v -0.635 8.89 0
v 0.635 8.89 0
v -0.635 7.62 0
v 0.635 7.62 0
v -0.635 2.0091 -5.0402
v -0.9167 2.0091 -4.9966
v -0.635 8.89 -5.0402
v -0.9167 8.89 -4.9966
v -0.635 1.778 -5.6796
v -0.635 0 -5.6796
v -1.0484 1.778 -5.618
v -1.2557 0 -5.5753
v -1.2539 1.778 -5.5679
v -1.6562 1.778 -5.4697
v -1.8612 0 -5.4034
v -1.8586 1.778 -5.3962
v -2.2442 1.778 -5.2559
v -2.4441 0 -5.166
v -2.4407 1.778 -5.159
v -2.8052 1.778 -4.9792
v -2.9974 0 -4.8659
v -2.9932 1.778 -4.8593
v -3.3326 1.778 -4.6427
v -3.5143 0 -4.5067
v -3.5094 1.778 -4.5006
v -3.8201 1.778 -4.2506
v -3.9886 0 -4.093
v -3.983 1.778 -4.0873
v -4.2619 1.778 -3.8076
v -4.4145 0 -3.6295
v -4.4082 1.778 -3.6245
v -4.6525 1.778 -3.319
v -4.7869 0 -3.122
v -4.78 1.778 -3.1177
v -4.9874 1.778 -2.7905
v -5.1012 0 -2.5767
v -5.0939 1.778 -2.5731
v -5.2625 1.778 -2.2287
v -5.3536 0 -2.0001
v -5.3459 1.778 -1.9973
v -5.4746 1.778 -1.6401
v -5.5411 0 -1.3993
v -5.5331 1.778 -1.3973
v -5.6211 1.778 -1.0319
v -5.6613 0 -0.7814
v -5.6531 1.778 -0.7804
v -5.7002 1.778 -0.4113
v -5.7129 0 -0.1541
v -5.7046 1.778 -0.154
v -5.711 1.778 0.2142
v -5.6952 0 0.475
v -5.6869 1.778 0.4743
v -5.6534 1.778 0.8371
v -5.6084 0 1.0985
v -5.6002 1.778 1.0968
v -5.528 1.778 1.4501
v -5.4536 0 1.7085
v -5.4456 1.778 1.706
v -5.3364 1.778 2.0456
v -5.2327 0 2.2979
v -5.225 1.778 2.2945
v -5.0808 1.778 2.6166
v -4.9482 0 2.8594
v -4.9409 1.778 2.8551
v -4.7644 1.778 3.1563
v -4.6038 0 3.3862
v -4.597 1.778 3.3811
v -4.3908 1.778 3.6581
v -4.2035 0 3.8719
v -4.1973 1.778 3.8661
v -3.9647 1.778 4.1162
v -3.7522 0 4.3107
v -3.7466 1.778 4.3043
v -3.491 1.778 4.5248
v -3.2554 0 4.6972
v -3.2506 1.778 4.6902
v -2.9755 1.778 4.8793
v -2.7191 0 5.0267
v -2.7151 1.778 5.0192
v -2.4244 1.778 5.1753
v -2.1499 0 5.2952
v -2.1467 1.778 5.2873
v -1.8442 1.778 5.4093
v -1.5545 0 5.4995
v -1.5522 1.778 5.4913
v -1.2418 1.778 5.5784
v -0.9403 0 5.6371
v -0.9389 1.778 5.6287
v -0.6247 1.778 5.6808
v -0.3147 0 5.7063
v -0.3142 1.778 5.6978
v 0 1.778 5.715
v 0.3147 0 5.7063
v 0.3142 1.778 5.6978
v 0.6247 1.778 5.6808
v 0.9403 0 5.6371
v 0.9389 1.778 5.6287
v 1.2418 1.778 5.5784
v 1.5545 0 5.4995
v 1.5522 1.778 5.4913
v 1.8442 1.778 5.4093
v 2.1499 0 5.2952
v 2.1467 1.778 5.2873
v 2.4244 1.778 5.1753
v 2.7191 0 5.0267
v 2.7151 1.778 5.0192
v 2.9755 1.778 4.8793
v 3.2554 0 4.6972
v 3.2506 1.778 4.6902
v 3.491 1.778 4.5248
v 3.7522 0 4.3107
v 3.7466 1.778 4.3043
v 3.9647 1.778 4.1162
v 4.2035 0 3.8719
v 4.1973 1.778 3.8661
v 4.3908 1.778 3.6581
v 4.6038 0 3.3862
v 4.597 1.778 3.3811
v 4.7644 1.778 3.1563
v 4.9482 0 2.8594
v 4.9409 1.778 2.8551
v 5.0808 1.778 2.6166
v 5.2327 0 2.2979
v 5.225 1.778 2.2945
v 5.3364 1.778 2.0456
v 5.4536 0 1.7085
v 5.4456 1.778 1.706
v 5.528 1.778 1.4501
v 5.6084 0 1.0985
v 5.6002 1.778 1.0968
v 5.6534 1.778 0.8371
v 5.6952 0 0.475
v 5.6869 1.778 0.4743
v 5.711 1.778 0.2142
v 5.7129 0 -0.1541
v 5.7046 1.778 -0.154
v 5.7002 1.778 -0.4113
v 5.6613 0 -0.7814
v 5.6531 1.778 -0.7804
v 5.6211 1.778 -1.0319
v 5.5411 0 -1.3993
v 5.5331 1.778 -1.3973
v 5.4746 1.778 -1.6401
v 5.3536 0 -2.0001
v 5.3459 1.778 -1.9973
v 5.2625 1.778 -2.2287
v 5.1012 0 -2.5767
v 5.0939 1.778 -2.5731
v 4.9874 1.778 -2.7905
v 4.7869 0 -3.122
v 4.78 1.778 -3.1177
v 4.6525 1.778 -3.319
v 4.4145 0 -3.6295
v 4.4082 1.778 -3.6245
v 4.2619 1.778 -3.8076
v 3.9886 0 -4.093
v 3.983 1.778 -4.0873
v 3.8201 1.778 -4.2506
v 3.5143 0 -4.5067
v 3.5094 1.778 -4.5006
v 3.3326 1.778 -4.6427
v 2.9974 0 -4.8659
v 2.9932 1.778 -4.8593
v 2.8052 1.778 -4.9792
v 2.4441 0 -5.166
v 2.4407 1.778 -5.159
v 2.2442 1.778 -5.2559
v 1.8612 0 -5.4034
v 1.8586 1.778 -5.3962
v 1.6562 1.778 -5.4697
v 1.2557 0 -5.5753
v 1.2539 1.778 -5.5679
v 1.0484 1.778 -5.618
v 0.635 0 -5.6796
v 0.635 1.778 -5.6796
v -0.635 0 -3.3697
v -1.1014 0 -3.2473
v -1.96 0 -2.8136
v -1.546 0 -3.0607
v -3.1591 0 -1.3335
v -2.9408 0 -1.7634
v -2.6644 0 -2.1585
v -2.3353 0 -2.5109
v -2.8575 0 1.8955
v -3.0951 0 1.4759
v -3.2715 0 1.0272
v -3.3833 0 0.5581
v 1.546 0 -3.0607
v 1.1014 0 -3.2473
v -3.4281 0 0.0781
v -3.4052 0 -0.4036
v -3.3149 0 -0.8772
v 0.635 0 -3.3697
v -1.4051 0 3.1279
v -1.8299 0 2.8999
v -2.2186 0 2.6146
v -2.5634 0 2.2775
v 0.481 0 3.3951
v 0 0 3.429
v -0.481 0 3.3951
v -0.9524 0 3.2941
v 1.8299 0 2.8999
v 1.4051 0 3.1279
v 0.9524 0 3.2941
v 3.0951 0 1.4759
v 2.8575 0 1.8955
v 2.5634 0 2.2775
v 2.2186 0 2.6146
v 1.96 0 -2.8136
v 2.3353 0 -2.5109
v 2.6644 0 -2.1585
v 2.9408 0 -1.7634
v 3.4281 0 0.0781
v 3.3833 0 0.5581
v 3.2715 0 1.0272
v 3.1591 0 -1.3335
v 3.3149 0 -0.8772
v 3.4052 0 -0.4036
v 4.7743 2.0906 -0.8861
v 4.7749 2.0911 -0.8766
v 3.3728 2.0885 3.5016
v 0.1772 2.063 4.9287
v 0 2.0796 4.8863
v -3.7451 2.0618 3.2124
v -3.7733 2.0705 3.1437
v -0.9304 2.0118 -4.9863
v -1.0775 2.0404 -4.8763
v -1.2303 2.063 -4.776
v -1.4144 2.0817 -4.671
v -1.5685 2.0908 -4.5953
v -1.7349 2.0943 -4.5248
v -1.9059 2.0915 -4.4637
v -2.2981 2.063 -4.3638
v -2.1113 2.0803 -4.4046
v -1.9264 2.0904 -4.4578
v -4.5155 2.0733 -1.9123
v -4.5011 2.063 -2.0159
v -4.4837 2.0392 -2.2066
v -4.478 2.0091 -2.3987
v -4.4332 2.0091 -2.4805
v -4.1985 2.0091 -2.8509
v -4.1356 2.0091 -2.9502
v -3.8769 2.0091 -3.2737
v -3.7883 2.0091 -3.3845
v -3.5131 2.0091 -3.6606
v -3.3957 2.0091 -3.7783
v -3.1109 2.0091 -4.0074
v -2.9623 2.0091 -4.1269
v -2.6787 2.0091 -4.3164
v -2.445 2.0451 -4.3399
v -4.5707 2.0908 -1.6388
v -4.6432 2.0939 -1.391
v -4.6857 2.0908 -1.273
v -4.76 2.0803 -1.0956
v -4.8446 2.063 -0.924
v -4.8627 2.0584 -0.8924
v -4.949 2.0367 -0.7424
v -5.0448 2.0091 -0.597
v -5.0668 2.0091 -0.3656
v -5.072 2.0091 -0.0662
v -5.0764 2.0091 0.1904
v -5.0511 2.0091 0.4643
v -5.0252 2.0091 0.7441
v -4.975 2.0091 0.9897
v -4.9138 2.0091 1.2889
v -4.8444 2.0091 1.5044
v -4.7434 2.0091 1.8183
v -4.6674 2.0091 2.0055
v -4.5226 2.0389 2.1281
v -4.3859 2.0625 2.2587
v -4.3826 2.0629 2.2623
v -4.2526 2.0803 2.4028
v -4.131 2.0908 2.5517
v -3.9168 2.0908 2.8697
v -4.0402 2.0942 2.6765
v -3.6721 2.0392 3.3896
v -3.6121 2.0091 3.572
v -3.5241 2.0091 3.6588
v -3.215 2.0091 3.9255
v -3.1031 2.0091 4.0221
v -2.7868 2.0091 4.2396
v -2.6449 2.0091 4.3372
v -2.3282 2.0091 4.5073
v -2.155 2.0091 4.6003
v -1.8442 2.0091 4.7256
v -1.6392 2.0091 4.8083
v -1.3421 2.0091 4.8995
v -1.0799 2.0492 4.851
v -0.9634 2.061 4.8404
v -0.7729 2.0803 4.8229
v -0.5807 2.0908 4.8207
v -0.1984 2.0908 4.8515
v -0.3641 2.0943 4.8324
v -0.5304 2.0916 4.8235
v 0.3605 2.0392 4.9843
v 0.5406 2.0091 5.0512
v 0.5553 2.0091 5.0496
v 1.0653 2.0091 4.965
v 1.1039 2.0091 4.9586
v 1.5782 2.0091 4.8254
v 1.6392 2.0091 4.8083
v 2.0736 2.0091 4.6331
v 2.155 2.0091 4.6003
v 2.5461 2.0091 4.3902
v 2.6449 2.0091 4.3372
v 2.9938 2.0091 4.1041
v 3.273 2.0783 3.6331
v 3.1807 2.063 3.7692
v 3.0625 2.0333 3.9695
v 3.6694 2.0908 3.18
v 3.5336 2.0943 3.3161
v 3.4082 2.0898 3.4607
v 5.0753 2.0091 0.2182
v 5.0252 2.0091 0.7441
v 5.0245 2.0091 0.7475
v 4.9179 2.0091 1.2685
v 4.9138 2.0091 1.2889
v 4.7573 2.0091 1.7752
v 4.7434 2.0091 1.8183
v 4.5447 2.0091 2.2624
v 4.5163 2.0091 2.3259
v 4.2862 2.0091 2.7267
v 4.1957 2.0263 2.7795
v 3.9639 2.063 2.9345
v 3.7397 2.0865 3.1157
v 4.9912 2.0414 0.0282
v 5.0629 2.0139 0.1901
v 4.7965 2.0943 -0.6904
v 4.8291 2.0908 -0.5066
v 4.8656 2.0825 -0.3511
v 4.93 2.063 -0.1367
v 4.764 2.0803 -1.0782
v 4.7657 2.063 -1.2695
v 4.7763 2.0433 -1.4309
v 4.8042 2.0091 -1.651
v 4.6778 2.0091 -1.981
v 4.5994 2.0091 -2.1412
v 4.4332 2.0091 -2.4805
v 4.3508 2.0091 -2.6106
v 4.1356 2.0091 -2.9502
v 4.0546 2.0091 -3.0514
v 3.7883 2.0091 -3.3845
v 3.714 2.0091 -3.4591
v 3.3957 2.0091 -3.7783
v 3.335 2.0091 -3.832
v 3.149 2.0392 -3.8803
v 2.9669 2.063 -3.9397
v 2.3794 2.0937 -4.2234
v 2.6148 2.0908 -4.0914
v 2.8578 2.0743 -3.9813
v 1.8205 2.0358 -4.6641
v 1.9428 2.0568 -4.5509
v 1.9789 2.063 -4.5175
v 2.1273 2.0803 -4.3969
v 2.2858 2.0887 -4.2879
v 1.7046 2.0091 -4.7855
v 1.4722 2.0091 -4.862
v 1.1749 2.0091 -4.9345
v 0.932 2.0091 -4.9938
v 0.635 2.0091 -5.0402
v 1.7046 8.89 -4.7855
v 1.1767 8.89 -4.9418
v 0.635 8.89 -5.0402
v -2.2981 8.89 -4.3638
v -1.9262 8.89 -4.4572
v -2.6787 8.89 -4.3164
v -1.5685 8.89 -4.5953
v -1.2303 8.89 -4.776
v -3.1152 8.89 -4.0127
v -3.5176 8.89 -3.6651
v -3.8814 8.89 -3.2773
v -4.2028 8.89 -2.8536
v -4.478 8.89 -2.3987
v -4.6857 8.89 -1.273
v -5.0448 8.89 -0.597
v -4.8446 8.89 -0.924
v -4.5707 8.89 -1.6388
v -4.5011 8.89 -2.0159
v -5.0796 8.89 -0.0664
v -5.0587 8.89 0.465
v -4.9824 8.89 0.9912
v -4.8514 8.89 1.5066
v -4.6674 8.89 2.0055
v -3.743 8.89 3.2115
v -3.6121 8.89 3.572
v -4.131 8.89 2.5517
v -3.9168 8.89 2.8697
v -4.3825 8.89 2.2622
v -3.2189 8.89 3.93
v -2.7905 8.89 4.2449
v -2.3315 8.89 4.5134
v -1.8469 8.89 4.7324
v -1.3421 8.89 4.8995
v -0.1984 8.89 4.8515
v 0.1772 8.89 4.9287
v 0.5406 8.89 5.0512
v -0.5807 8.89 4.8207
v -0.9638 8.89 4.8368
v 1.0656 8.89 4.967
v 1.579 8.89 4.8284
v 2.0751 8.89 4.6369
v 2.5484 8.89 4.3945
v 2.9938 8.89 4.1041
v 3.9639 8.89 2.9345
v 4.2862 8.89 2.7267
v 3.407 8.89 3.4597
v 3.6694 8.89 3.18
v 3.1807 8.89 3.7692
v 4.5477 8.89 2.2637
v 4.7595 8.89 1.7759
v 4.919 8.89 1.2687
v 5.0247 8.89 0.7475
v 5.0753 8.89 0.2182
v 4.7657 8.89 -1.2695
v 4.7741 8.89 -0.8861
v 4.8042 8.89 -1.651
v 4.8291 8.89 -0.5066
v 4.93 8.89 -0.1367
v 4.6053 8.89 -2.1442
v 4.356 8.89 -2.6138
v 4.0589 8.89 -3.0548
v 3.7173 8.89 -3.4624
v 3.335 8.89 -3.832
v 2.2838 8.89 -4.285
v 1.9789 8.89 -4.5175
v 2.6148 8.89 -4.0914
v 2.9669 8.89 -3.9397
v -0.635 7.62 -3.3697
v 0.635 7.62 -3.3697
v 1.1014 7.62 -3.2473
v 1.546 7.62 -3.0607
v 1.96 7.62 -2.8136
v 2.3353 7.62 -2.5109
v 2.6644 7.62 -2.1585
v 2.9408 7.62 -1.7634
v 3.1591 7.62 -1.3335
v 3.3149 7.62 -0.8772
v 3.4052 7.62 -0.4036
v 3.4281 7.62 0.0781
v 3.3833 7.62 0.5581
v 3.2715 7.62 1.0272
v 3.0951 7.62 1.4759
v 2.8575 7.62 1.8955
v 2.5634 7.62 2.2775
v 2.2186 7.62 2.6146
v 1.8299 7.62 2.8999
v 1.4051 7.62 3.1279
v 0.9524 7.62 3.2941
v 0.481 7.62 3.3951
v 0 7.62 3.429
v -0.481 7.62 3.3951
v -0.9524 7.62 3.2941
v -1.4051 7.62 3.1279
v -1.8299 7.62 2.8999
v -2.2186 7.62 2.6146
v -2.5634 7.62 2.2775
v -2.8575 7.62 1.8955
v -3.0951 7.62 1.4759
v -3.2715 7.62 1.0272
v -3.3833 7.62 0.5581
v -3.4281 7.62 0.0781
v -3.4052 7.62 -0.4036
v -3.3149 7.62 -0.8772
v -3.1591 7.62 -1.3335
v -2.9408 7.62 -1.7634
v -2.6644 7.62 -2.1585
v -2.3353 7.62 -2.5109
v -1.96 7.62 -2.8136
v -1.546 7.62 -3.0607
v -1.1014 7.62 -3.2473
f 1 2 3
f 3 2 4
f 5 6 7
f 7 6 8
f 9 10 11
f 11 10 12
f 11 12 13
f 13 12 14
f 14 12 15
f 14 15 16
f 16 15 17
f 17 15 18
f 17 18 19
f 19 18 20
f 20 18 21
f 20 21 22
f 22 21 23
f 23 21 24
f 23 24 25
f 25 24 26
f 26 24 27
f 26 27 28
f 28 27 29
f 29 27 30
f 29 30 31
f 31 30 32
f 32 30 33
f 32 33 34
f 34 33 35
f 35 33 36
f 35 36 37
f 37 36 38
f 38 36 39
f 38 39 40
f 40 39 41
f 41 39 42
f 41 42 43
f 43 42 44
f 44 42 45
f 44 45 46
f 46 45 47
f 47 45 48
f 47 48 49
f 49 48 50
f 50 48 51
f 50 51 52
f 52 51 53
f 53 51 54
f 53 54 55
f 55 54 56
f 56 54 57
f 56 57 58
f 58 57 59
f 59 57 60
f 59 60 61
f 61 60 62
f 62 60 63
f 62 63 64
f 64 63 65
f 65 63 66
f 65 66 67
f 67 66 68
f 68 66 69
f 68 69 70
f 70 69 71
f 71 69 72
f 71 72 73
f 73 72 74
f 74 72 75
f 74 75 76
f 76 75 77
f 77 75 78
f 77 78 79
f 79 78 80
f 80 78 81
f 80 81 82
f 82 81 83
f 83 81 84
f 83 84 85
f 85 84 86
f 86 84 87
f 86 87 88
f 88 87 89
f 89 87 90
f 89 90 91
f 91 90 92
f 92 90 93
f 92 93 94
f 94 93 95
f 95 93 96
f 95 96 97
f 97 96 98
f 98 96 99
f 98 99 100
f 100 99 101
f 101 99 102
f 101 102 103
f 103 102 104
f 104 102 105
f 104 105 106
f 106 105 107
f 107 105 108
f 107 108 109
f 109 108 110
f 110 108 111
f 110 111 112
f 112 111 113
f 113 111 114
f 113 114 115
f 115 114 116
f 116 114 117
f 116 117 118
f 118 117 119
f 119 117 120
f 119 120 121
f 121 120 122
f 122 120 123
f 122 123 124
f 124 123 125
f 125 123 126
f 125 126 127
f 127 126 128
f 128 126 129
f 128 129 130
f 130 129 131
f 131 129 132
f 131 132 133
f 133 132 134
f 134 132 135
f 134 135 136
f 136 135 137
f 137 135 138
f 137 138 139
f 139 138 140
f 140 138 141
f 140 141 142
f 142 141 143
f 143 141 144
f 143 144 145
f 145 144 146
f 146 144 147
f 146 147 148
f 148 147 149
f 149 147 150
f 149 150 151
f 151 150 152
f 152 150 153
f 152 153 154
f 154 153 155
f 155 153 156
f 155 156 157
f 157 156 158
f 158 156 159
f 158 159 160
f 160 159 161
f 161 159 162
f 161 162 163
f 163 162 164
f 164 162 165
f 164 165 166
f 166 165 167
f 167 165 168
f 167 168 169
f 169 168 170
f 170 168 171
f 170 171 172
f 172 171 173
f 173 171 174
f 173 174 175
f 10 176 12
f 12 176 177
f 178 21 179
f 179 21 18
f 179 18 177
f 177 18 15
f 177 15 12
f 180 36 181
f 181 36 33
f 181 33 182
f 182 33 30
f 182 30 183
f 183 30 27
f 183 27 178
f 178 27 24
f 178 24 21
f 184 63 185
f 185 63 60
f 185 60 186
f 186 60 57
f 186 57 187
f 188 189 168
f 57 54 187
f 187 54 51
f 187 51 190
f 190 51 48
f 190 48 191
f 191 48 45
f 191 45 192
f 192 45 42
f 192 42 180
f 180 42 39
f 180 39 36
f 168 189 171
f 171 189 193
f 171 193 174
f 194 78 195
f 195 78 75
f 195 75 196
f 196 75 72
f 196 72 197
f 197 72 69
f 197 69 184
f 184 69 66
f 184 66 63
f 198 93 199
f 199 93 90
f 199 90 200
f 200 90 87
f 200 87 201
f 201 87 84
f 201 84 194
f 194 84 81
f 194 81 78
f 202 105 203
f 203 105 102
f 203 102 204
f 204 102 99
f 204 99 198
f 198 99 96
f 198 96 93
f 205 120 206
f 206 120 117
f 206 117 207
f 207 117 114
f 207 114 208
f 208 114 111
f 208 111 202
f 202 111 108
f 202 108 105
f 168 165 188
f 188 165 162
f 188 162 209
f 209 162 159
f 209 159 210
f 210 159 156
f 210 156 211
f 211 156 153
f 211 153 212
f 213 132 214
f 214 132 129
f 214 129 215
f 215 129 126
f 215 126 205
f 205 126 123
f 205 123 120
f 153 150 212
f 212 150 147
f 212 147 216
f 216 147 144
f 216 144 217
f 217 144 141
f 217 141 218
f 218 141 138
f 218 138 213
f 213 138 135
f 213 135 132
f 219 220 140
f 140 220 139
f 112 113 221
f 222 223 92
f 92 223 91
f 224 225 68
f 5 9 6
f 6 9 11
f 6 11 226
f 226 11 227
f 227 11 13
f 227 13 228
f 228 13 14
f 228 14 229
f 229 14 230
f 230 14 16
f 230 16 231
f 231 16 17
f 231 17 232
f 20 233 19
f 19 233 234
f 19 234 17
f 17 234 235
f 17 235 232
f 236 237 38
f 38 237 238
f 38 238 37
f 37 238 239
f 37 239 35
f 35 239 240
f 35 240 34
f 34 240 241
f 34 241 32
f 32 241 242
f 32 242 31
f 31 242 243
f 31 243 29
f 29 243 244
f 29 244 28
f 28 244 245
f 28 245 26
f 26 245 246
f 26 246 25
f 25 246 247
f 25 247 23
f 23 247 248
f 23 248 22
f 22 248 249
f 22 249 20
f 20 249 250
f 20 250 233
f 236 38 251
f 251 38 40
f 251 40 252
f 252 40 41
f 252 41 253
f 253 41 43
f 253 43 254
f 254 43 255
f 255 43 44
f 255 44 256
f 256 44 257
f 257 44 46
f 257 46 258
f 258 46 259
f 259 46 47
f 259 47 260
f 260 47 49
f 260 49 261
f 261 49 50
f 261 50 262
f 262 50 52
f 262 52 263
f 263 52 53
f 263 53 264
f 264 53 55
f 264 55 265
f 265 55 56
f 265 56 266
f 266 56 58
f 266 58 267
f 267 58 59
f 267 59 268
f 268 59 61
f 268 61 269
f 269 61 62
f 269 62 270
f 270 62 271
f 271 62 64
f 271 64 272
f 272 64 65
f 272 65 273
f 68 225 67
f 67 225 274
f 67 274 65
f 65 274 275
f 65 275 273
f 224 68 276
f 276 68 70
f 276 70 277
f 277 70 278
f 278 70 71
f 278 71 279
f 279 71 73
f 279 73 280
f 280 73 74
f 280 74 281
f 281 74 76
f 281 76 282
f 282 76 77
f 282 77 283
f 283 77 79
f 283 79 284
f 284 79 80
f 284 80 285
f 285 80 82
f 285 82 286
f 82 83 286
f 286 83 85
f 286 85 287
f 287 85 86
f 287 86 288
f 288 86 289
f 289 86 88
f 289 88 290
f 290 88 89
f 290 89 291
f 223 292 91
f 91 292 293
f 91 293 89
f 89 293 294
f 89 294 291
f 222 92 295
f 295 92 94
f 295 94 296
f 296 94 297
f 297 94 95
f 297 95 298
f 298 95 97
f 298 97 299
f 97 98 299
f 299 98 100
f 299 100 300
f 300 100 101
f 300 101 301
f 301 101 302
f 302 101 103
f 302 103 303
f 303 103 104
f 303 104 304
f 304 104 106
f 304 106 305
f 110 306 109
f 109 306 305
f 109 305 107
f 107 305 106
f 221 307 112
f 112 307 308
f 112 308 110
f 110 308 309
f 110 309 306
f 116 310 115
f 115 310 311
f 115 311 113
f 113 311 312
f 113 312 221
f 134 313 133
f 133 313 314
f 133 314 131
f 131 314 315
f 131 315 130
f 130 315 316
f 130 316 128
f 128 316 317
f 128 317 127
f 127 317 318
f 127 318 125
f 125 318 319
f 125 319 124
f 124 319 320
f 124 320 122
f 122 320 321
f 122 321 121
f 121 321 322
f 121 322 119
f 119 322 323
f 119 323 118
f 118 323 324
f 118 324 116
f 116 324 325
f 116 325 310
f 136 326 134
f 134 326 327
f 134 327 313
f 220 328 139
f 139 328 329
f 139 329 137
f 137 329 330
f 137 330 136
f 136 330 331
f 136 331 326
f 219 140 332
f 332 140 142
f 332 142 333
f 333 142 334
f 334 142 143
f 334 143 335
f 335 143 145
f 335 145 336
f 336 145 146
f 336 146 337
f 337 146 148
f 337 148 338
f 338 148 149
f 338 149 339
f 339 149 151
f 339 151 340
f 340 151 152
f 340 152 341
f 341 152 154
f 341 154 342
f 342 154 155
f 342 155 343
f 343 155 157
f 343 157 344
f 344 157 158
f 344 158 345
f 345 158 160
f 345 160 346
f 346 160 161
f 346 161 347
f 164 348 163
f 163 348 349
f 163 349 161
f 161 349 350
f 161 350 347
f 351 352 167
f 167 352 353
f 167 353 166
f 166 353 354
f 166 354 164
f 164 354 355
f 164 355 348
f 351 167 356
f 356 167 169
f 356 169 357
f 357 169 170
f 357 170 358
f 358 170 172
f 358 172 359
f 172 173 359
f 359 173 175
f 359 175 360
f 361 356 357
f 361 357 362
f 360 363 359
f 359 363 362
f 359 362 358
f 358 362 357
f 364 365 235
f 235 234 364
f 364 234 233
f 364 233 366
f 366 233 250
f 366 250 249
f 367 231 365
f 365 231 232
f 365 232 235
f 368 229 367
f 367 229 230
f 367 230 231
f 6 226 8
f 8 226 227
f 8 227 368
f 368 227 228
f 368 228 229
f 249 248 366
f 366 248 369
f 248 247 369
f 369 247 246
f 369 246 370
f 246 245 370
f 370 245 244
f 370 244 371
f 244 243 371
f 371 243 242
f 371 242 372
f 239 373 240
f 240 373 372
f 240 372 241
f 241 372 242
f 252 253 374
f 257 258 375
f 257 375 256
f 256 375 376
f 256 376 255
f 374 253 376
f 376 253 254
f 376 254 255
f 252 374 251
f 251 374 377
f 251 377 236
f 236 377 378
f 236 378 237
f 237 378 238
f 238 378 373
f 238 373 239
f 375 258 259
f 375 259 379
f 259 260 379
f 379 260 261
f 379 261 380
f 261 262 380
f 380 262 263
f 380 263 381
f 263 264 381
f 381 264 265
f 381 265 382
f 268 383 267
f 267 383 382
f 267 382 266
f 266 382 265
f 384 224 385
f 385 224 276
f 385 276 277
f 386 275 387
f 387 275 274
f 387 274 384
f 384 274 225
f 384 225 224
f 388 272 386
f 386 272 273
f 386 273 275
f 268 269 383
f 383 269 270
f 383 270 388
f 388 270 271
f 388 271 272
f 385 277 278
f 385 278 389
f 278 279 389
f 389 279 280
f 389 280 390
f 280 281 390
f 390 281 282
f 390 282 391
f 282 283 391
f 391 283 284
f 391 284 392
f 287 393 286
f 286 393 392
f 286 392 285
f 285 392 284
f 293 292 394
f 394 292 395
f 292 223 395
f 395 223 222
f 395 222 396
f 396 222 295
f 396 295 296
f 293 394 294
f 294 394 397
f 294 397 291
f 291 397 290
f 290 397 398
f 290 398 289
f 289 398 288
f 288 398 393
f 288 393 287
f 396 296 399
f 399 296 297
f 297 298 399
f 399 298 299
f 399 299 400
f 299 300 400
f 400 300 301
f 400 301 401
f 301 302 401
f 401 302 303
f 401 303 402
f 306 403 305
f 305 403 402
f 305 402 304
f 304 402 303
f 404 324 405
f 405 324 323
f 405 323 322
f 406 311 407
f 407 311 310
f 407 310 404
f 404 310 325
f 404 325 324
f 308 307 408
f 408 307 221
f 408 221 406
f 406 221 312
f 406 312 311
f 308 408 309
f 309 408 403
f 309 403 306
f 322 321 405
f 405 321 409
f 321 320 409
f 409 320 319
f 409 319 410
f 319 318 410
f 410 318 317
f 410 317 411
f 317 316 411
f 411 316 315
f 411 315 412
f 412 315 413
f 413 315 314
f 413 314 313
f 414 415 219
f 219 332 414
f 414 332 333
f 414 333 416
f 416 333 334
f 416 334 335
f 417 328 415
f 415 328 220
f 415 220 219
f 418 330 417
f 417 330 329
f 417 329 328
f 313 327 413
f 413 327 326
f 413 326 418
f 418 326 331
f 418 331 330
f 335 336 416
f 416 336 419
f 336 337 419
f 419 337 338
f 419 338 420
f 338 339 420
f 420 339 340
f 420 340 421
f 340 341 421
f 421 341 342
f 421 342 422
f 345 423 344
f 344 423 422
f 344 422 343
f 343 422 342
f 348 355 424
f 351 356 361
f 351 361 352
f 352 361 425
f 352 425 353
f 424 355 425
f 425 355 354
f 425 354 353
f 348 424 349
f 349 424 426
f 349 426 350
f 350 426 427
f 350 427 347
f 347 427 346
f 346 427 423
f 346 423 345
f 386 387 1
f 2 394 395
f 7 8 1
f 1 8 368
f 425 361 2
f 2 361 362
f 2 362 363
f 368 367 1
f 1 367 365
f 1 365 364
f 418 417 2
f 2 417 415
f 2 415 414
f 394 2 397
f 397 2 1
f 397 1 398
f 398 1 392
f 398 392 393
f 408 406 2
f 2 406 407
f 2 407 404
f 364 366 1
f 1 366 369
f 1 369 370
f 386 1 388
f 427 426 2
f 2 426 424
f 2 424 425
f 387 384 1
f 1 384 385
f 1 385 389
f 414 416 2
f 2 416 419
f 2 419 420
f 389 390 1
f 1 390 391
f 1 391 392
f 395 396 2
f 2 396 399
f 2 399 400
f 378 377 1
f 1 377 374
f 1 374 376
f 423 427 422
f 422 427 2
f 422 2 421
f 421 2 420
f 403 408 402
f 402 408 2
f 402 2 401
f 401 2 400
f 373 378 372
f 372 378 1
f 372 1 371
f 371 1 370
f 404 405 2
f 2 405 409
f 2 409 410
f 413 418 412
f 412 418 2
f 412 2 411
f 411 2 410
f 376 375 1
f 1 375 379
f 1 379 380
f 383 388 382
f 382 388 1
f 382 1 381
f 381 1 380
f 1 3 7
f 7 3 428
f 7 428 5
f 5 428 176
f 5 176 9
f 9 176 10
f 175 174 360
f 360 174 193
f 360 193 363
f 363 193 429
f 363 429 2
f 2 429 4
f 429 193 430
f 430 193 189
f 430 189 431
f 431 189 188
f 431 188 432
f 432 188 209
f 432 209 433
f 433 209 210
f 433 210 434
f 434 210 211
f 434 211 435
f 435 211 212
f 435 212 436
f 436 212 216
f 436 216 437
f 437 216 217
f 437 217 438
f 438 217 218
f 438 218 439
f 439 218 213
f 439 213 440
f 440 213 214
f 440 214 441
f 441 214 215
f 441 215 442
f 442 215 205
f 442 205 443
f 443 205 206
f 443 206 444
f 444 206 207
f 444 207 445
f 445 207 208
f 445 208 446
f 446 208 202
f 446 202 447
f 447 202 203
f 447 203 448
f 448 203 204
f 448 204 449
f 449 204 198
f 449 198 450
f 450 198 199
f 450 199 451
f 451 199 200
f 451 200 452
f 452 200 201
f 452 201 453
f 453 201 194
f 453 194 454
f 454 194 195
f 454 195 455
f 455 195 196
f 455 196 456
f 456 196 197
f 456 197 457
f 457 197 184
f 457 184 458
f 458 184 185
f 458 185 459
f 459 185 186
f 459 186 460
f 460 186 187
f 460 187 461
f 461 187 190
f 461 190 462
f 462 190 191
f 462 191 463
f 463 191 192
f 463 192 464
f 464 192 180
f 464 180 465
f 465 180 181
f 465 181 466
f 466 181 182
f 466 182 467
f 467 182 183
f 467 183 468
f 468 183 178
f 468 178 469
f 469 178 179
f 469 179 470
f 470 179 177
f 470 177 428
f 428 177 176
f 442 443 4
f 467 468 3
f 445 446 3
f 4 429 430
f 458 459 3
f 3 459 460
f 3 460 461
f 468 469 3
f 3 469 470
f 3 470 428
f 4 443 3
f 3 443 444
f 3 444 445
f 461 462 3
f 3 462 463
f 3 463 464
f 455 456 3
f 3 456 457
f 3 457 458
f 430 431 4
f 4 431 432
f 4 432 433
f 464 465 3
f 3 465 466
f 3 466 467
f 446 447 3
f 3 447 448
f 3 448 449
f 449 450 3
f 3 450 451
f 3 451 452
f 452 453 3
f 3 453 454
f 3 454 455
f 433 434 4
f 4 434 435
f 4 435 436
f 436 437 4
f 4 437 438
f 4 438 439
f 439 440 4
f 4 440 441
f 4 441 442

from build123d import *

# Parameters (mm, degrees)
SKETCH1_R           = 5.715
BOSS_EXTRUDE1_DEPTH = 1.778
BOSS_EXTRUDE3_DEPTH = 8.89
SKETCH6_W           = 1.27
SKETCH6_H           = 14.319161929
CUT_EXTRUDE4_DEPTH  = 13.014764004
SKETCH9_R           = 3.429
CUT_EXTRUDE6_DEPTH  = 7.62


with BuildPart() as part:
    # Sketch1 → Boss-Extrude1 (new body)
    with BuildSketch(Plane(origin=(0, 0, 0), x_dir=(1, 0, 0), z_dir=(0, 1, 0))):
        with Locations(Location((0, 0, 0), (0, 0, 270))):
            Circle(SKETCH1_R)
    extrude(amount=BOSS_EXTRUDE1_DEPTH)

    # Boss-Extrude2 cone 1 section (through the dimple's axis) → Boss-Extrude2 (revolve)
    with BuildSketch(Plane(origin=(0, 1.778, 0), x_dir=(0, 0, -1), z_dir=(1, 0, 0))):
        Polygon((0, 0), (5.715, 0), (0, 2.080089889), align=None)
    revolve(axis=Axis((0, 1.778, 0), (0, 1, 0)))

    # Sketch5 → Boss-Extrude3 (add)
    with BuildSketch(Plane.XZ):
        with BuildLine():
            ThreePointArc((3.334987409, -3.832004565), (2.446327806, -4.183135508), (1.704579152, -4.785479068))
            ThreePointArc((1.704579152, -4.785479068), (0.407862853, -5.06360029), (-0.916651171, -4.996613917))
            ThreePointArc((-0.916651171, -4.996613917), (-1.745246597, -4.520758424), (-2.678650476, -4.316391042))
            ThreePointArc((-2.678650476, -4.316391042), (-3.704583791, -3.475983161), (-4.478032723, -2.398671077))
            ThreePointArc((-4.478032723, -2.398671077), (-4.622614715, -1.45415804), (-5.044801662, -0.596972523))
            ThreePointArc((-5.044801662, -0.596972523), (-5.027403282, 0.729120186), (-4.667364299, 2.005520007))
            ThreePointArc((-4.667364299, 2.005520007), (-4.019059669, 2.707453007), (-3.612114301, 3.571978482))
            ThreePointArc((-3.612114301, 3.571978482), (-2.56448556, 4.385181161), (-1.342075361, 4.899513621))
            ThreePointArc((-1.342075361, 4.899513621), (-0.389070718, 4.830296718), (0.540568802, 5.051156835))
            ThreePointArc((0.540568802, 5.051156835), (1.829542094, 4.73911128), (2.993823697, 4.104073546))
            ThreePointArc((2.993823697, 4.104073546), (3.533896419, 3.31582848), (4.286192572, 2.726711066))
            ThreePointArc((4.286192572, 2.726711066), (4.845887235, 1.524393946), (5.075312448, 0.218182383))
            ThreePointArc((5.075312448, 0.218182383), (4.795767474, -0.695526234), (4.804225912, -1.65100375))
            ThreePointArc((4.804225912, -1.65100375), (4.213180451, -2.838223122), (3.334987409, -3.832004565))
        make_face()
    extrude(amount=-BOSS_EXTRUDE3_DEPTH)

    # Sketch6 → Cut-Extrude4 (cut, through all)
    with BuildSketch(Plane(origin=(0, 0, 0), x_dir=(-1, 0, 0), z_dir=(0, -1, 0))):
        with Locations((0, 7.159580965)):
            Rectangle(SKETCH6_W, SKETCH6_H)
    extrude(amount=-CUT_EXTRUDE4_DEPTH, mode=Mode.SUBTRACT)

    # Sketch9 → Cut-Extrude6 (cut)
    with BuildSketch(Plane.XZ):
        Circle(SKETCH9_R)
    extrude(amount=-CUT_EXTRUDE6_DEPTH, mode=Mode.SUBTRACT)


solid = part.part
